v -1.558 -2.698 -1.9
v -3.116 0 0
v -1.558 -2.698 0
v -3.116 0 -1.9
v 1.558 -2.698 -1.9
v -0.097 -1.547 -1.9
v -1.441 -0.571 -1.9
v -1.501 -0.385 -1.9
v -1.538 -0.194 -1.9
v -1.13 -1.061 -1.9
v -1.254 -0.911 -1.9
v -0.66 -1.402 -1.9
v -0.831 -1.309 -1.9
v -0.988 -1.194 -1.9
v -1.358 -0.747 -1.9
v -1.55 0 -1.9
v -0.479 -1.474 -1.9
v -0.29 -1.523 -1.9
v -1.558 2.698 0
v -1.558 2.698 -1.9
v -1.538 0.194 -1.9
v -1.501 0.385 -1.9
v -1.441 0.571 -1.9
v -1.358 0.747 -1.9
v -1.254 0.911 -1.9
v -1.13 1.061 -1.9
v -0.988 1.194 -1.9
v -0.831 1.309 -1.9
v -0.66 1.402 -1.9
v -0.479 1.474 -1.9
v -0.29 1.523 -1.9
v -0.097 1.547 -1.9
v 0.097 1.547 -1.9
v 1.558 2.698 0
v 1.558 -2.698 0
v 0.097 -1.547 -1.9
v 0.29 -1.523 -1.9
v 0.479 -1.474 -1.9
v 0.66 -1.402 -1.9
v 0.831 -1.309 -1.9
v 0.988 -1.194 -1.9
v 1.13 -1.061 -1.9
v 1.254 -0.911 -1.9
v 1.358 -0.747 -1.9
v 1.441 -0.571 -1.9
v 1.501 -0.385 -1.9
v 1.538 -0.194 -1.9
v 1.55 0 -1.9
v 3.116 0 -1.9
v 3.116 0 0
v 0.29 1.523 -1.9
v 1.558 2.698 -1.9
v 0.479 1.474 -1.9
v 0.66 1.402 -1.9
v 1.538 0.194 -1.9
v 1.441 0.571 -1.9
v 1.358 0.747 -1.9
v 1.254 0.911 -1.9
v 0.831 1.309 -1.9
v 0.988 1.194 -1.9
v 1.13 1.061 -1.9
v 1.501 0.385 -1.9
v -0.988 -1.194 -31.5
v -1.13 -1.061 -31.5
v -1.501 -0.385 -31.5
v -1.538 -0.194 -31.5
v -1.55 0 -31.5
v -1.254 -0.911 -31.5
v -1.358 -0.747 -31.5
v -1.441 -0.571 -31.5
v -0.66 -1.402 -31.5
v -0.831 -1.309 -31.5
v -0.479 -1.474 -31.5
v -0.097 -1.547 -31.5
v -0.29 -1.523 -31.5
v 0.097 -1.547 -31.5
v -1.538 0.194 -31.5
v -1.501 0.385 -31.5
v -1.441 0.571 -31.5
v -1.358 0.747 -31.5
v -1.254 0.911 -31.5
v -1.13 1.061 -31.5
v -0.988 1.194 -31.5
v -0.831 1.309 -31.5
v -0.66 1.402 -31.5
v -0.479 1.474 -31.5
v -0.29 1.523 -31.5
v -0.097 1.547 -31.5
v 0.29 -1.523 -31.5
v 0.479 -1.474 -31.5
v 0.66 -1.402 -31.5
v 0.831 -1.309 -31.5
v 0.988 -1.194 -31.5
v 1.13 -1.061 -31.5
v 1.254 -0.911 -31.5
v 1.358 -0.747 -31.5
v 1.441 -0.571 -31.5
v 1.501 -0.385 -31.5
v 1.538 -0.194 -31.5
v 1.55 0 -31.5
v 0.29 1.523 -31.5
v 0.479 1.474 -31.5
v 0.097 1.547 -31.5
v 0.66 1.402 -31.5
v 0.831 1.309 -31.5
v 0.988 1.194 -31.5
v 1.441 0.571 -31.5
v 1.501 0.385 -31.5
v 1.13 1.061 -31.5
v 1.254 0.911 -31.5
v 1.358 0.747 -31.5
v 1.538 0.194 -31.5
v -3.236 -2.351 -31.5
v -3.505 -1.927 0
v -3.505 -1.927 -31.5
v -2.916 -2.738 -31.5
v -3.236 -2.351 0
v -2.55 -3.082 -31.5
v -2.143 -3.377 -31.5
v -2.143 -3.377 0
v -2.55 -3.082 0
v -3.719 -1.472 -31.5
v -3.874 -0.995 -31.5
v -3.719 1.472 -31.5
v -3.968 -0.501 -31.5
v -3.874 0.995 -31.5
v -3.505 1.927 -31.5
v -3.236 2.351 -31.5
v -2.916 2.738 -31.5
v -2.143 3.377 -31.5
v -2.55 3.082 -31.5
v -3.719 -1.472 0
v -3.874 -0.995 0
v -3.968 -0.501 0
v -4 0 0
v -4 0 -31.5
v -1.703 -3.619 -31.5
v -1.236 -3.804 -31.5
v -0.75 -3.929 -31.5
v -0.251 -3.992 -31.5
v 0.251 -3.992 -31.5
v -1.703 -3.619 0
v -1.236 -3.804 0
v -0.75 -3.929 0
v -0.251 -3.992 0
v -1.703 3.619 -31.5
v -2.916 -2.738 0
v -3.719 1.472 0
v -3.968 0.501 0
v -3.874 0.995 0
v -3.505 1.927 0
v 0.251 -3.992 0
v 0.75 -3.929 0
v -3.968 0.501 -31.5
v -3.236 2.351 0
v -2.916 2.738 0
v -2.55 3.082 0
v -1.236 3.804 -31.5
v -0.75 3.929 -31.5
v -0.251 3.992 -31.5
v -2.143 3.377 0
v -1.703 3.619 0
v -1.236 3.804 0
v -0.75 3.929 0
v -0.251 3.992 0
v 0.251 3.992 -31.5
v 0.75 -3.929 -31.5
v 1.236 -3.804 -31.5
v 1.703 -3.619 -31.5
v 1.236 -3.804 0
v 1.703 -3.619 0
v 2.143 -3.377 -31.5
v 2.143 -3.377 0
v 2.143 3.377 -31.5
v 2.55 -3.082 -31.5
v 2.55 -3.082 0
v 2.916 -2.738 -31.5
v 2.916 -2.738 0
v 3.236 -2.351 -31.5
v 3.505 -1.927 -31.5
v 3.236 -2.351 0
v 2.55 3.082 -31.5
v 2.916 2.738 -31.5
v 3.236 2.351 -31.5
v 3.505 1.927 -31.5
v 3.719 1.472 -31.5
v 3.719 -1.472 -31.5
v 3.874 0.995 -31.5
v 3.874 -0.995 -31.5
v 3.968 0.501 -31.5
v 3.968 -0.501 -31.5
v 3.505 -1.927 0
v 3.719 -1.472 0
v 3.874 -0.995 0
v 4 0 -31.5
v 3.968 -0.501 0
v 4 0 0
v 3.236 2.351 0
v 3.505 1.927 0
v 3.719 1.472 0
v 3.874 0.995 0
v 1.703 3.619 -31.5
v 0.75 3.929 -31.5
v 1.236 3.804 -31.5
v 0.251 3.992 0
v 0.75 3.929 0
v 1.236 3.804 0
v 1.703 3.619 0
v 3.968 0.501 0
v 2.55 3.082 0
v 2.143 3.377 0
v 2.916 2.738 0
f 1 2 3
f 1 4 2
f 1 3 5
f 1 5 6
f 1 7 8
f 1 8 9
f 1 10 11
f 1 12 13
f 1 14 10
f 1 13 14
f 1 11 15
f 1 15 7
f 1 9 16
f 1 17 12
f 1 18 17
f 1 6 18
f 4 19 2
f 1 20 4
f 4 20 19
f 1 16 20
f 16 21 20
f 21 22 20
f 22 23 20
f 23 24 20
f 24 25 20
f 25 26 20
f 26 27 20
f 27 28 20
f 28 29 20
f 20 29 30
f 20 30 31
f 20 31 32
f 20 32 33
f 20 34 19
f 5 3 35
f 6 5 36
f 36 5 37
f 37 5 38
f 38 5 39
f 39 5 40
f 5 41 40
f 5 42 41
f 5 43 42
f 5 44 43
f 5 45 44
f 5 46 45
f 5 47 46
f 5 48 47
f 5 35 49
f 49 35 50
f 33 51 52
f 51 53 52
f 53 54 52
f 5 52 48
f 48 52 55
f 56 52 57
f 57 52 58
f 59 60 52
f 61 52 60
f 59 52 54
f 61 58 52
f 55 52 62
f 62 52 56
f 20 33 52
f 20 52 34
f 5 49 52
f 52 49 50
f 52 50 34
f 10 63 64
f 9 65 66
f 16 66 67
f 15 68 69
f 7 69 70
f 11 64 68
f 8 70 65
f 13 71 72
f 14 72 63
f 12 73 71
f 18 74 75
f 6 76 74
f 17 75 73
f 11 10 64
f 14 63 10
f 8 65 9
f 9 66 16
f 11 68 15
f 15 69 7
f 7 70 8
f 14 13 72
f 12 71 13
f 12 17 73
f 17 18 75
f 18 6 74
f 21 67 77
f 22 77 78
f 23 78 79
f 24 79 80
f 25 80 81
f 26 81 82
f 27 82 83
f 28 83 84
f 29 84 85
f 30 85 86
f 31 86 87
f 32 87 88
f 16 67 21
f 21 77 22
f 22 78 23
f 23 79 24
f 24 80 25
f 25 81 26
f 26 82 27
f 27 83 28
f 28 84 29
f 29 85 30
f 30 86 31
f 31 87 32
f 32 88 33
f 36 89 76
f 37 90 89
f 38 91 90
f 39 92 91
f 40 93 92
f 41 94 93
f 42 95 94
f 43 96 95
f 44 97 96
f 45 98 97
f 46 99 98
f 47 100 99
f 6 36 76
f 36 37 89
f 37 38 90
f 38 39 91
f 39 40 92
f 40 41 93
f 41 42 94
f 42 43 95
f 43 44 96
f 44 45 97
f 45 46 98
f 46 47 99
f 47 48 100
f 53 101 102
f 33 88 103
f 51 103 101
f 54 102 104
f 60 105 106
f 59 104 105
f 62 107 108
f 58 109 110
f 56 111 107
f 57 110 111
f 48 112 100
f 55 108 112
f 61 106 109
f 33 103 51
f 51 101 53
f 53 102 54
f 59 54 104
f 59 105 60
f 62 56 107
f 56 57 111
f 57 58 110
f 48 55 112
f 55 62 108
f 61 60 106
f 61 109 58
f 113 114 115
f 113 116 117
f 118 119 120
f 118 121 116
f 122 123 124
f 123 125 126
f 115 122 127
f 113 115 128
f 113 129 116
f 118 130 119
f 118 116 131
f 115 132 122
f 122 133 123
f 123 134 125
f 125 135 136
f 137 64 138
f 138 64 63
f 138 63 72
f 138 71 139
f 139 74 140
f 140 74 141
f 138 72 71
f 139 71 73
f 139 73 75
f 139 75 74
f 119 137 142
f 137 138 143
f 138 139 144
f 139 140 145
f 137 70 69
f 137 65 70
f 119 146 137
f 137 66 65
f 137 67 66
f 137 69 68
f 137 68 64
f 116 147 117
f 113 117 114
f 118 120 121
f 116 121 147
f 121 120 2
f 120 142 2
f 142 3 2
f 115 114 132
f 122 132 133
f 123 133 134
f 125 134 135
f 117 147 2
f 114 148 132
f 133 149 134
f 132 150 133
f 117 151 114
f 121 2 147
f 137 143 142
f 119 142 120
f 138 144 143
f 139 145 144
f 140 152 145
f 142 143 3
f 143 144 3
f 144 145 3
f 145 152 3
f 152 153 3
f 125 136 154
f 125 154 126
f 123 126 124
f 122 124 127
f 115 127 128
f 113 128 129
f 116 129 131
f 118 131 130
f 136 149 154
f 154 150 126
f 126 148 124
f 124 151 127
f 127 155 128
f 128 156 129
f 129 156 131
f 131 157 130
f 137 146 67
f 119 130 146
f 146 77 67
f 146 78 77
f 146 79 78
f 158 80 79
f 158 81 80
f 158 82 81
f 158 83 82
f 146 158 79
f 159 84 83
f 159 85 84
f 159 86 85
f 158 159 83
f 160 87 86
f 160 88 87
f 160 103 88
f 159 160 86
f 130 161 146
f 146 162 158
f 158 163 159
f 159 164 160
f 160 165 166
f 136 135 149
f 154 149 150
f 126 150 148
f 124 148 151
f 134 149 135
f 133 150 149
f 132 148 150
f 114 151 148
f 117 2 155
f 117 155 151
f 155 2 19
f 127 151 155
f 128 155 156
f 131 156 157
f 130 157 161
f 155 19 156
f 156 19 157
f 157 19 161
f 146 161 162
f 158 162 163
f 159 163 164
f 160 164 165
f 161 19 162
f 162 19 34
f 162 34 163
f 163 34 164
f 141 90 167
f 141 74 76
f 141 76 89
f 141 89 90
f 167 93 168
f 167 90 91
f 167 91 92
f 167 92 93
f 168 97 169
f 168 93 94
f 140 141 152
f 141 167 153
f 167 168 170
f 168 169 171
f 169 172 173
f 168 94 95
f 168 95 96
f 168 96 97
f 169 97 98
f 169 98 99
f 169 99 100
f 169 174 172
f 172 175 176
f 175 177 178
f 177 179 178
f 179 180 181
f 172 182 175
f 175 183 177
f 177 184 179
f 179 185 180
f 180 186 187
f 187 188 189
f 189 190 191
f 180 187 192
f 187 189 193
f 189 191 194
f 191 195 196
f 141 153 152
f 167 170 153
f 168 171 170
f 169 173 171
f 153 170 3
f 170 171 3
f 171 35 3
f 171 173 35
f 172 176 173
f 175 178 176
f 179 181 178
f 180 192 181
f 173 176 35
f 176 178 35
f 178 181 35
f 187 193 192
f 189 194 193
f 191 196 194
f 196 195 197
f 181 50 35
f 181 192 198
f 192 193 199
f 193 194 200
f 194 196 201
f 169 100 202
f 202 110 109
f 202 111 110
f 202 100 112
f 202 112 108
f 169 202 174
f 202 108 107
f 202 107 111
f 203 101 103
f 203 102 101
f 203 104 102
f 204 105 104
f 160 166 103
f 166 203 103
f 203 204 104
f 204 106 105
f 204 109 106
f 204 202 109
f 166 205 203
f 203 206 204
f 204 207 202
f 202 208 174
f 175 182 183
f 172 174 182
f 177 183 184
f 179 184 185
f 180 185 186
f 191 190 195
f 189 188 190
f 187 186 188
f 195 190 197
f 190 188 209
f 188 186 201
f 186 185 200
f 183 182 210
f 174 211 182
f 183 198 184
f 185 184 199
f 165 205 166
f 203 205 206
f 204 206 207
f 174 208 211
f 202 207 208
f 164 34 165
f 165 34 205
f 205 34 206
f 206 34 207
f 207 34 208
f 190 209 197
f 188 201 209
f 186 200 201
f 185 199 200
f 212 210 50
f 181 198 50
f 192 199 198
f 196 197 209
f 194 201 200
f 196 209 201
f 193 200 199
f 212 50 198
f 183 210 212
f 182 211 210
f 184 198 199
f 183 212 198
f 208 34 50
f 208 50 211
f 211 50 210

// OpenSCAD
$fn = 50;

difference() {
	union() {
		translate(v = [0, 0, -31.5]) {
			cylinder(h = 31.5, r = 4.0);
		}
	}
	union() {
		translate(v = [0, 0, 0]) {
			rotate(a = [0, 0, 0]) {
				difference() {
					union() {
						translate(v = [0, 0, -1.9]) {
							linear_extrude(height = 1.9) {
								polygon(points = [[3.1158, 0.0], [1.5579000000000005, 2.698361953111554], [-1.5578999999999994, 2.6983619531115544], [-3.1158, 3.815754496783323e-16], [-1.5579000000000014, -2.6983619531115535], [1.557899999999998, -2.6983619531115552]]);
							}
						}
					}
					union();
				}
			}
		}
		#translate(v = [0, 0, -100.0]) {
			cylinder(h = 200, r = 1.55);
		}
	}
}
